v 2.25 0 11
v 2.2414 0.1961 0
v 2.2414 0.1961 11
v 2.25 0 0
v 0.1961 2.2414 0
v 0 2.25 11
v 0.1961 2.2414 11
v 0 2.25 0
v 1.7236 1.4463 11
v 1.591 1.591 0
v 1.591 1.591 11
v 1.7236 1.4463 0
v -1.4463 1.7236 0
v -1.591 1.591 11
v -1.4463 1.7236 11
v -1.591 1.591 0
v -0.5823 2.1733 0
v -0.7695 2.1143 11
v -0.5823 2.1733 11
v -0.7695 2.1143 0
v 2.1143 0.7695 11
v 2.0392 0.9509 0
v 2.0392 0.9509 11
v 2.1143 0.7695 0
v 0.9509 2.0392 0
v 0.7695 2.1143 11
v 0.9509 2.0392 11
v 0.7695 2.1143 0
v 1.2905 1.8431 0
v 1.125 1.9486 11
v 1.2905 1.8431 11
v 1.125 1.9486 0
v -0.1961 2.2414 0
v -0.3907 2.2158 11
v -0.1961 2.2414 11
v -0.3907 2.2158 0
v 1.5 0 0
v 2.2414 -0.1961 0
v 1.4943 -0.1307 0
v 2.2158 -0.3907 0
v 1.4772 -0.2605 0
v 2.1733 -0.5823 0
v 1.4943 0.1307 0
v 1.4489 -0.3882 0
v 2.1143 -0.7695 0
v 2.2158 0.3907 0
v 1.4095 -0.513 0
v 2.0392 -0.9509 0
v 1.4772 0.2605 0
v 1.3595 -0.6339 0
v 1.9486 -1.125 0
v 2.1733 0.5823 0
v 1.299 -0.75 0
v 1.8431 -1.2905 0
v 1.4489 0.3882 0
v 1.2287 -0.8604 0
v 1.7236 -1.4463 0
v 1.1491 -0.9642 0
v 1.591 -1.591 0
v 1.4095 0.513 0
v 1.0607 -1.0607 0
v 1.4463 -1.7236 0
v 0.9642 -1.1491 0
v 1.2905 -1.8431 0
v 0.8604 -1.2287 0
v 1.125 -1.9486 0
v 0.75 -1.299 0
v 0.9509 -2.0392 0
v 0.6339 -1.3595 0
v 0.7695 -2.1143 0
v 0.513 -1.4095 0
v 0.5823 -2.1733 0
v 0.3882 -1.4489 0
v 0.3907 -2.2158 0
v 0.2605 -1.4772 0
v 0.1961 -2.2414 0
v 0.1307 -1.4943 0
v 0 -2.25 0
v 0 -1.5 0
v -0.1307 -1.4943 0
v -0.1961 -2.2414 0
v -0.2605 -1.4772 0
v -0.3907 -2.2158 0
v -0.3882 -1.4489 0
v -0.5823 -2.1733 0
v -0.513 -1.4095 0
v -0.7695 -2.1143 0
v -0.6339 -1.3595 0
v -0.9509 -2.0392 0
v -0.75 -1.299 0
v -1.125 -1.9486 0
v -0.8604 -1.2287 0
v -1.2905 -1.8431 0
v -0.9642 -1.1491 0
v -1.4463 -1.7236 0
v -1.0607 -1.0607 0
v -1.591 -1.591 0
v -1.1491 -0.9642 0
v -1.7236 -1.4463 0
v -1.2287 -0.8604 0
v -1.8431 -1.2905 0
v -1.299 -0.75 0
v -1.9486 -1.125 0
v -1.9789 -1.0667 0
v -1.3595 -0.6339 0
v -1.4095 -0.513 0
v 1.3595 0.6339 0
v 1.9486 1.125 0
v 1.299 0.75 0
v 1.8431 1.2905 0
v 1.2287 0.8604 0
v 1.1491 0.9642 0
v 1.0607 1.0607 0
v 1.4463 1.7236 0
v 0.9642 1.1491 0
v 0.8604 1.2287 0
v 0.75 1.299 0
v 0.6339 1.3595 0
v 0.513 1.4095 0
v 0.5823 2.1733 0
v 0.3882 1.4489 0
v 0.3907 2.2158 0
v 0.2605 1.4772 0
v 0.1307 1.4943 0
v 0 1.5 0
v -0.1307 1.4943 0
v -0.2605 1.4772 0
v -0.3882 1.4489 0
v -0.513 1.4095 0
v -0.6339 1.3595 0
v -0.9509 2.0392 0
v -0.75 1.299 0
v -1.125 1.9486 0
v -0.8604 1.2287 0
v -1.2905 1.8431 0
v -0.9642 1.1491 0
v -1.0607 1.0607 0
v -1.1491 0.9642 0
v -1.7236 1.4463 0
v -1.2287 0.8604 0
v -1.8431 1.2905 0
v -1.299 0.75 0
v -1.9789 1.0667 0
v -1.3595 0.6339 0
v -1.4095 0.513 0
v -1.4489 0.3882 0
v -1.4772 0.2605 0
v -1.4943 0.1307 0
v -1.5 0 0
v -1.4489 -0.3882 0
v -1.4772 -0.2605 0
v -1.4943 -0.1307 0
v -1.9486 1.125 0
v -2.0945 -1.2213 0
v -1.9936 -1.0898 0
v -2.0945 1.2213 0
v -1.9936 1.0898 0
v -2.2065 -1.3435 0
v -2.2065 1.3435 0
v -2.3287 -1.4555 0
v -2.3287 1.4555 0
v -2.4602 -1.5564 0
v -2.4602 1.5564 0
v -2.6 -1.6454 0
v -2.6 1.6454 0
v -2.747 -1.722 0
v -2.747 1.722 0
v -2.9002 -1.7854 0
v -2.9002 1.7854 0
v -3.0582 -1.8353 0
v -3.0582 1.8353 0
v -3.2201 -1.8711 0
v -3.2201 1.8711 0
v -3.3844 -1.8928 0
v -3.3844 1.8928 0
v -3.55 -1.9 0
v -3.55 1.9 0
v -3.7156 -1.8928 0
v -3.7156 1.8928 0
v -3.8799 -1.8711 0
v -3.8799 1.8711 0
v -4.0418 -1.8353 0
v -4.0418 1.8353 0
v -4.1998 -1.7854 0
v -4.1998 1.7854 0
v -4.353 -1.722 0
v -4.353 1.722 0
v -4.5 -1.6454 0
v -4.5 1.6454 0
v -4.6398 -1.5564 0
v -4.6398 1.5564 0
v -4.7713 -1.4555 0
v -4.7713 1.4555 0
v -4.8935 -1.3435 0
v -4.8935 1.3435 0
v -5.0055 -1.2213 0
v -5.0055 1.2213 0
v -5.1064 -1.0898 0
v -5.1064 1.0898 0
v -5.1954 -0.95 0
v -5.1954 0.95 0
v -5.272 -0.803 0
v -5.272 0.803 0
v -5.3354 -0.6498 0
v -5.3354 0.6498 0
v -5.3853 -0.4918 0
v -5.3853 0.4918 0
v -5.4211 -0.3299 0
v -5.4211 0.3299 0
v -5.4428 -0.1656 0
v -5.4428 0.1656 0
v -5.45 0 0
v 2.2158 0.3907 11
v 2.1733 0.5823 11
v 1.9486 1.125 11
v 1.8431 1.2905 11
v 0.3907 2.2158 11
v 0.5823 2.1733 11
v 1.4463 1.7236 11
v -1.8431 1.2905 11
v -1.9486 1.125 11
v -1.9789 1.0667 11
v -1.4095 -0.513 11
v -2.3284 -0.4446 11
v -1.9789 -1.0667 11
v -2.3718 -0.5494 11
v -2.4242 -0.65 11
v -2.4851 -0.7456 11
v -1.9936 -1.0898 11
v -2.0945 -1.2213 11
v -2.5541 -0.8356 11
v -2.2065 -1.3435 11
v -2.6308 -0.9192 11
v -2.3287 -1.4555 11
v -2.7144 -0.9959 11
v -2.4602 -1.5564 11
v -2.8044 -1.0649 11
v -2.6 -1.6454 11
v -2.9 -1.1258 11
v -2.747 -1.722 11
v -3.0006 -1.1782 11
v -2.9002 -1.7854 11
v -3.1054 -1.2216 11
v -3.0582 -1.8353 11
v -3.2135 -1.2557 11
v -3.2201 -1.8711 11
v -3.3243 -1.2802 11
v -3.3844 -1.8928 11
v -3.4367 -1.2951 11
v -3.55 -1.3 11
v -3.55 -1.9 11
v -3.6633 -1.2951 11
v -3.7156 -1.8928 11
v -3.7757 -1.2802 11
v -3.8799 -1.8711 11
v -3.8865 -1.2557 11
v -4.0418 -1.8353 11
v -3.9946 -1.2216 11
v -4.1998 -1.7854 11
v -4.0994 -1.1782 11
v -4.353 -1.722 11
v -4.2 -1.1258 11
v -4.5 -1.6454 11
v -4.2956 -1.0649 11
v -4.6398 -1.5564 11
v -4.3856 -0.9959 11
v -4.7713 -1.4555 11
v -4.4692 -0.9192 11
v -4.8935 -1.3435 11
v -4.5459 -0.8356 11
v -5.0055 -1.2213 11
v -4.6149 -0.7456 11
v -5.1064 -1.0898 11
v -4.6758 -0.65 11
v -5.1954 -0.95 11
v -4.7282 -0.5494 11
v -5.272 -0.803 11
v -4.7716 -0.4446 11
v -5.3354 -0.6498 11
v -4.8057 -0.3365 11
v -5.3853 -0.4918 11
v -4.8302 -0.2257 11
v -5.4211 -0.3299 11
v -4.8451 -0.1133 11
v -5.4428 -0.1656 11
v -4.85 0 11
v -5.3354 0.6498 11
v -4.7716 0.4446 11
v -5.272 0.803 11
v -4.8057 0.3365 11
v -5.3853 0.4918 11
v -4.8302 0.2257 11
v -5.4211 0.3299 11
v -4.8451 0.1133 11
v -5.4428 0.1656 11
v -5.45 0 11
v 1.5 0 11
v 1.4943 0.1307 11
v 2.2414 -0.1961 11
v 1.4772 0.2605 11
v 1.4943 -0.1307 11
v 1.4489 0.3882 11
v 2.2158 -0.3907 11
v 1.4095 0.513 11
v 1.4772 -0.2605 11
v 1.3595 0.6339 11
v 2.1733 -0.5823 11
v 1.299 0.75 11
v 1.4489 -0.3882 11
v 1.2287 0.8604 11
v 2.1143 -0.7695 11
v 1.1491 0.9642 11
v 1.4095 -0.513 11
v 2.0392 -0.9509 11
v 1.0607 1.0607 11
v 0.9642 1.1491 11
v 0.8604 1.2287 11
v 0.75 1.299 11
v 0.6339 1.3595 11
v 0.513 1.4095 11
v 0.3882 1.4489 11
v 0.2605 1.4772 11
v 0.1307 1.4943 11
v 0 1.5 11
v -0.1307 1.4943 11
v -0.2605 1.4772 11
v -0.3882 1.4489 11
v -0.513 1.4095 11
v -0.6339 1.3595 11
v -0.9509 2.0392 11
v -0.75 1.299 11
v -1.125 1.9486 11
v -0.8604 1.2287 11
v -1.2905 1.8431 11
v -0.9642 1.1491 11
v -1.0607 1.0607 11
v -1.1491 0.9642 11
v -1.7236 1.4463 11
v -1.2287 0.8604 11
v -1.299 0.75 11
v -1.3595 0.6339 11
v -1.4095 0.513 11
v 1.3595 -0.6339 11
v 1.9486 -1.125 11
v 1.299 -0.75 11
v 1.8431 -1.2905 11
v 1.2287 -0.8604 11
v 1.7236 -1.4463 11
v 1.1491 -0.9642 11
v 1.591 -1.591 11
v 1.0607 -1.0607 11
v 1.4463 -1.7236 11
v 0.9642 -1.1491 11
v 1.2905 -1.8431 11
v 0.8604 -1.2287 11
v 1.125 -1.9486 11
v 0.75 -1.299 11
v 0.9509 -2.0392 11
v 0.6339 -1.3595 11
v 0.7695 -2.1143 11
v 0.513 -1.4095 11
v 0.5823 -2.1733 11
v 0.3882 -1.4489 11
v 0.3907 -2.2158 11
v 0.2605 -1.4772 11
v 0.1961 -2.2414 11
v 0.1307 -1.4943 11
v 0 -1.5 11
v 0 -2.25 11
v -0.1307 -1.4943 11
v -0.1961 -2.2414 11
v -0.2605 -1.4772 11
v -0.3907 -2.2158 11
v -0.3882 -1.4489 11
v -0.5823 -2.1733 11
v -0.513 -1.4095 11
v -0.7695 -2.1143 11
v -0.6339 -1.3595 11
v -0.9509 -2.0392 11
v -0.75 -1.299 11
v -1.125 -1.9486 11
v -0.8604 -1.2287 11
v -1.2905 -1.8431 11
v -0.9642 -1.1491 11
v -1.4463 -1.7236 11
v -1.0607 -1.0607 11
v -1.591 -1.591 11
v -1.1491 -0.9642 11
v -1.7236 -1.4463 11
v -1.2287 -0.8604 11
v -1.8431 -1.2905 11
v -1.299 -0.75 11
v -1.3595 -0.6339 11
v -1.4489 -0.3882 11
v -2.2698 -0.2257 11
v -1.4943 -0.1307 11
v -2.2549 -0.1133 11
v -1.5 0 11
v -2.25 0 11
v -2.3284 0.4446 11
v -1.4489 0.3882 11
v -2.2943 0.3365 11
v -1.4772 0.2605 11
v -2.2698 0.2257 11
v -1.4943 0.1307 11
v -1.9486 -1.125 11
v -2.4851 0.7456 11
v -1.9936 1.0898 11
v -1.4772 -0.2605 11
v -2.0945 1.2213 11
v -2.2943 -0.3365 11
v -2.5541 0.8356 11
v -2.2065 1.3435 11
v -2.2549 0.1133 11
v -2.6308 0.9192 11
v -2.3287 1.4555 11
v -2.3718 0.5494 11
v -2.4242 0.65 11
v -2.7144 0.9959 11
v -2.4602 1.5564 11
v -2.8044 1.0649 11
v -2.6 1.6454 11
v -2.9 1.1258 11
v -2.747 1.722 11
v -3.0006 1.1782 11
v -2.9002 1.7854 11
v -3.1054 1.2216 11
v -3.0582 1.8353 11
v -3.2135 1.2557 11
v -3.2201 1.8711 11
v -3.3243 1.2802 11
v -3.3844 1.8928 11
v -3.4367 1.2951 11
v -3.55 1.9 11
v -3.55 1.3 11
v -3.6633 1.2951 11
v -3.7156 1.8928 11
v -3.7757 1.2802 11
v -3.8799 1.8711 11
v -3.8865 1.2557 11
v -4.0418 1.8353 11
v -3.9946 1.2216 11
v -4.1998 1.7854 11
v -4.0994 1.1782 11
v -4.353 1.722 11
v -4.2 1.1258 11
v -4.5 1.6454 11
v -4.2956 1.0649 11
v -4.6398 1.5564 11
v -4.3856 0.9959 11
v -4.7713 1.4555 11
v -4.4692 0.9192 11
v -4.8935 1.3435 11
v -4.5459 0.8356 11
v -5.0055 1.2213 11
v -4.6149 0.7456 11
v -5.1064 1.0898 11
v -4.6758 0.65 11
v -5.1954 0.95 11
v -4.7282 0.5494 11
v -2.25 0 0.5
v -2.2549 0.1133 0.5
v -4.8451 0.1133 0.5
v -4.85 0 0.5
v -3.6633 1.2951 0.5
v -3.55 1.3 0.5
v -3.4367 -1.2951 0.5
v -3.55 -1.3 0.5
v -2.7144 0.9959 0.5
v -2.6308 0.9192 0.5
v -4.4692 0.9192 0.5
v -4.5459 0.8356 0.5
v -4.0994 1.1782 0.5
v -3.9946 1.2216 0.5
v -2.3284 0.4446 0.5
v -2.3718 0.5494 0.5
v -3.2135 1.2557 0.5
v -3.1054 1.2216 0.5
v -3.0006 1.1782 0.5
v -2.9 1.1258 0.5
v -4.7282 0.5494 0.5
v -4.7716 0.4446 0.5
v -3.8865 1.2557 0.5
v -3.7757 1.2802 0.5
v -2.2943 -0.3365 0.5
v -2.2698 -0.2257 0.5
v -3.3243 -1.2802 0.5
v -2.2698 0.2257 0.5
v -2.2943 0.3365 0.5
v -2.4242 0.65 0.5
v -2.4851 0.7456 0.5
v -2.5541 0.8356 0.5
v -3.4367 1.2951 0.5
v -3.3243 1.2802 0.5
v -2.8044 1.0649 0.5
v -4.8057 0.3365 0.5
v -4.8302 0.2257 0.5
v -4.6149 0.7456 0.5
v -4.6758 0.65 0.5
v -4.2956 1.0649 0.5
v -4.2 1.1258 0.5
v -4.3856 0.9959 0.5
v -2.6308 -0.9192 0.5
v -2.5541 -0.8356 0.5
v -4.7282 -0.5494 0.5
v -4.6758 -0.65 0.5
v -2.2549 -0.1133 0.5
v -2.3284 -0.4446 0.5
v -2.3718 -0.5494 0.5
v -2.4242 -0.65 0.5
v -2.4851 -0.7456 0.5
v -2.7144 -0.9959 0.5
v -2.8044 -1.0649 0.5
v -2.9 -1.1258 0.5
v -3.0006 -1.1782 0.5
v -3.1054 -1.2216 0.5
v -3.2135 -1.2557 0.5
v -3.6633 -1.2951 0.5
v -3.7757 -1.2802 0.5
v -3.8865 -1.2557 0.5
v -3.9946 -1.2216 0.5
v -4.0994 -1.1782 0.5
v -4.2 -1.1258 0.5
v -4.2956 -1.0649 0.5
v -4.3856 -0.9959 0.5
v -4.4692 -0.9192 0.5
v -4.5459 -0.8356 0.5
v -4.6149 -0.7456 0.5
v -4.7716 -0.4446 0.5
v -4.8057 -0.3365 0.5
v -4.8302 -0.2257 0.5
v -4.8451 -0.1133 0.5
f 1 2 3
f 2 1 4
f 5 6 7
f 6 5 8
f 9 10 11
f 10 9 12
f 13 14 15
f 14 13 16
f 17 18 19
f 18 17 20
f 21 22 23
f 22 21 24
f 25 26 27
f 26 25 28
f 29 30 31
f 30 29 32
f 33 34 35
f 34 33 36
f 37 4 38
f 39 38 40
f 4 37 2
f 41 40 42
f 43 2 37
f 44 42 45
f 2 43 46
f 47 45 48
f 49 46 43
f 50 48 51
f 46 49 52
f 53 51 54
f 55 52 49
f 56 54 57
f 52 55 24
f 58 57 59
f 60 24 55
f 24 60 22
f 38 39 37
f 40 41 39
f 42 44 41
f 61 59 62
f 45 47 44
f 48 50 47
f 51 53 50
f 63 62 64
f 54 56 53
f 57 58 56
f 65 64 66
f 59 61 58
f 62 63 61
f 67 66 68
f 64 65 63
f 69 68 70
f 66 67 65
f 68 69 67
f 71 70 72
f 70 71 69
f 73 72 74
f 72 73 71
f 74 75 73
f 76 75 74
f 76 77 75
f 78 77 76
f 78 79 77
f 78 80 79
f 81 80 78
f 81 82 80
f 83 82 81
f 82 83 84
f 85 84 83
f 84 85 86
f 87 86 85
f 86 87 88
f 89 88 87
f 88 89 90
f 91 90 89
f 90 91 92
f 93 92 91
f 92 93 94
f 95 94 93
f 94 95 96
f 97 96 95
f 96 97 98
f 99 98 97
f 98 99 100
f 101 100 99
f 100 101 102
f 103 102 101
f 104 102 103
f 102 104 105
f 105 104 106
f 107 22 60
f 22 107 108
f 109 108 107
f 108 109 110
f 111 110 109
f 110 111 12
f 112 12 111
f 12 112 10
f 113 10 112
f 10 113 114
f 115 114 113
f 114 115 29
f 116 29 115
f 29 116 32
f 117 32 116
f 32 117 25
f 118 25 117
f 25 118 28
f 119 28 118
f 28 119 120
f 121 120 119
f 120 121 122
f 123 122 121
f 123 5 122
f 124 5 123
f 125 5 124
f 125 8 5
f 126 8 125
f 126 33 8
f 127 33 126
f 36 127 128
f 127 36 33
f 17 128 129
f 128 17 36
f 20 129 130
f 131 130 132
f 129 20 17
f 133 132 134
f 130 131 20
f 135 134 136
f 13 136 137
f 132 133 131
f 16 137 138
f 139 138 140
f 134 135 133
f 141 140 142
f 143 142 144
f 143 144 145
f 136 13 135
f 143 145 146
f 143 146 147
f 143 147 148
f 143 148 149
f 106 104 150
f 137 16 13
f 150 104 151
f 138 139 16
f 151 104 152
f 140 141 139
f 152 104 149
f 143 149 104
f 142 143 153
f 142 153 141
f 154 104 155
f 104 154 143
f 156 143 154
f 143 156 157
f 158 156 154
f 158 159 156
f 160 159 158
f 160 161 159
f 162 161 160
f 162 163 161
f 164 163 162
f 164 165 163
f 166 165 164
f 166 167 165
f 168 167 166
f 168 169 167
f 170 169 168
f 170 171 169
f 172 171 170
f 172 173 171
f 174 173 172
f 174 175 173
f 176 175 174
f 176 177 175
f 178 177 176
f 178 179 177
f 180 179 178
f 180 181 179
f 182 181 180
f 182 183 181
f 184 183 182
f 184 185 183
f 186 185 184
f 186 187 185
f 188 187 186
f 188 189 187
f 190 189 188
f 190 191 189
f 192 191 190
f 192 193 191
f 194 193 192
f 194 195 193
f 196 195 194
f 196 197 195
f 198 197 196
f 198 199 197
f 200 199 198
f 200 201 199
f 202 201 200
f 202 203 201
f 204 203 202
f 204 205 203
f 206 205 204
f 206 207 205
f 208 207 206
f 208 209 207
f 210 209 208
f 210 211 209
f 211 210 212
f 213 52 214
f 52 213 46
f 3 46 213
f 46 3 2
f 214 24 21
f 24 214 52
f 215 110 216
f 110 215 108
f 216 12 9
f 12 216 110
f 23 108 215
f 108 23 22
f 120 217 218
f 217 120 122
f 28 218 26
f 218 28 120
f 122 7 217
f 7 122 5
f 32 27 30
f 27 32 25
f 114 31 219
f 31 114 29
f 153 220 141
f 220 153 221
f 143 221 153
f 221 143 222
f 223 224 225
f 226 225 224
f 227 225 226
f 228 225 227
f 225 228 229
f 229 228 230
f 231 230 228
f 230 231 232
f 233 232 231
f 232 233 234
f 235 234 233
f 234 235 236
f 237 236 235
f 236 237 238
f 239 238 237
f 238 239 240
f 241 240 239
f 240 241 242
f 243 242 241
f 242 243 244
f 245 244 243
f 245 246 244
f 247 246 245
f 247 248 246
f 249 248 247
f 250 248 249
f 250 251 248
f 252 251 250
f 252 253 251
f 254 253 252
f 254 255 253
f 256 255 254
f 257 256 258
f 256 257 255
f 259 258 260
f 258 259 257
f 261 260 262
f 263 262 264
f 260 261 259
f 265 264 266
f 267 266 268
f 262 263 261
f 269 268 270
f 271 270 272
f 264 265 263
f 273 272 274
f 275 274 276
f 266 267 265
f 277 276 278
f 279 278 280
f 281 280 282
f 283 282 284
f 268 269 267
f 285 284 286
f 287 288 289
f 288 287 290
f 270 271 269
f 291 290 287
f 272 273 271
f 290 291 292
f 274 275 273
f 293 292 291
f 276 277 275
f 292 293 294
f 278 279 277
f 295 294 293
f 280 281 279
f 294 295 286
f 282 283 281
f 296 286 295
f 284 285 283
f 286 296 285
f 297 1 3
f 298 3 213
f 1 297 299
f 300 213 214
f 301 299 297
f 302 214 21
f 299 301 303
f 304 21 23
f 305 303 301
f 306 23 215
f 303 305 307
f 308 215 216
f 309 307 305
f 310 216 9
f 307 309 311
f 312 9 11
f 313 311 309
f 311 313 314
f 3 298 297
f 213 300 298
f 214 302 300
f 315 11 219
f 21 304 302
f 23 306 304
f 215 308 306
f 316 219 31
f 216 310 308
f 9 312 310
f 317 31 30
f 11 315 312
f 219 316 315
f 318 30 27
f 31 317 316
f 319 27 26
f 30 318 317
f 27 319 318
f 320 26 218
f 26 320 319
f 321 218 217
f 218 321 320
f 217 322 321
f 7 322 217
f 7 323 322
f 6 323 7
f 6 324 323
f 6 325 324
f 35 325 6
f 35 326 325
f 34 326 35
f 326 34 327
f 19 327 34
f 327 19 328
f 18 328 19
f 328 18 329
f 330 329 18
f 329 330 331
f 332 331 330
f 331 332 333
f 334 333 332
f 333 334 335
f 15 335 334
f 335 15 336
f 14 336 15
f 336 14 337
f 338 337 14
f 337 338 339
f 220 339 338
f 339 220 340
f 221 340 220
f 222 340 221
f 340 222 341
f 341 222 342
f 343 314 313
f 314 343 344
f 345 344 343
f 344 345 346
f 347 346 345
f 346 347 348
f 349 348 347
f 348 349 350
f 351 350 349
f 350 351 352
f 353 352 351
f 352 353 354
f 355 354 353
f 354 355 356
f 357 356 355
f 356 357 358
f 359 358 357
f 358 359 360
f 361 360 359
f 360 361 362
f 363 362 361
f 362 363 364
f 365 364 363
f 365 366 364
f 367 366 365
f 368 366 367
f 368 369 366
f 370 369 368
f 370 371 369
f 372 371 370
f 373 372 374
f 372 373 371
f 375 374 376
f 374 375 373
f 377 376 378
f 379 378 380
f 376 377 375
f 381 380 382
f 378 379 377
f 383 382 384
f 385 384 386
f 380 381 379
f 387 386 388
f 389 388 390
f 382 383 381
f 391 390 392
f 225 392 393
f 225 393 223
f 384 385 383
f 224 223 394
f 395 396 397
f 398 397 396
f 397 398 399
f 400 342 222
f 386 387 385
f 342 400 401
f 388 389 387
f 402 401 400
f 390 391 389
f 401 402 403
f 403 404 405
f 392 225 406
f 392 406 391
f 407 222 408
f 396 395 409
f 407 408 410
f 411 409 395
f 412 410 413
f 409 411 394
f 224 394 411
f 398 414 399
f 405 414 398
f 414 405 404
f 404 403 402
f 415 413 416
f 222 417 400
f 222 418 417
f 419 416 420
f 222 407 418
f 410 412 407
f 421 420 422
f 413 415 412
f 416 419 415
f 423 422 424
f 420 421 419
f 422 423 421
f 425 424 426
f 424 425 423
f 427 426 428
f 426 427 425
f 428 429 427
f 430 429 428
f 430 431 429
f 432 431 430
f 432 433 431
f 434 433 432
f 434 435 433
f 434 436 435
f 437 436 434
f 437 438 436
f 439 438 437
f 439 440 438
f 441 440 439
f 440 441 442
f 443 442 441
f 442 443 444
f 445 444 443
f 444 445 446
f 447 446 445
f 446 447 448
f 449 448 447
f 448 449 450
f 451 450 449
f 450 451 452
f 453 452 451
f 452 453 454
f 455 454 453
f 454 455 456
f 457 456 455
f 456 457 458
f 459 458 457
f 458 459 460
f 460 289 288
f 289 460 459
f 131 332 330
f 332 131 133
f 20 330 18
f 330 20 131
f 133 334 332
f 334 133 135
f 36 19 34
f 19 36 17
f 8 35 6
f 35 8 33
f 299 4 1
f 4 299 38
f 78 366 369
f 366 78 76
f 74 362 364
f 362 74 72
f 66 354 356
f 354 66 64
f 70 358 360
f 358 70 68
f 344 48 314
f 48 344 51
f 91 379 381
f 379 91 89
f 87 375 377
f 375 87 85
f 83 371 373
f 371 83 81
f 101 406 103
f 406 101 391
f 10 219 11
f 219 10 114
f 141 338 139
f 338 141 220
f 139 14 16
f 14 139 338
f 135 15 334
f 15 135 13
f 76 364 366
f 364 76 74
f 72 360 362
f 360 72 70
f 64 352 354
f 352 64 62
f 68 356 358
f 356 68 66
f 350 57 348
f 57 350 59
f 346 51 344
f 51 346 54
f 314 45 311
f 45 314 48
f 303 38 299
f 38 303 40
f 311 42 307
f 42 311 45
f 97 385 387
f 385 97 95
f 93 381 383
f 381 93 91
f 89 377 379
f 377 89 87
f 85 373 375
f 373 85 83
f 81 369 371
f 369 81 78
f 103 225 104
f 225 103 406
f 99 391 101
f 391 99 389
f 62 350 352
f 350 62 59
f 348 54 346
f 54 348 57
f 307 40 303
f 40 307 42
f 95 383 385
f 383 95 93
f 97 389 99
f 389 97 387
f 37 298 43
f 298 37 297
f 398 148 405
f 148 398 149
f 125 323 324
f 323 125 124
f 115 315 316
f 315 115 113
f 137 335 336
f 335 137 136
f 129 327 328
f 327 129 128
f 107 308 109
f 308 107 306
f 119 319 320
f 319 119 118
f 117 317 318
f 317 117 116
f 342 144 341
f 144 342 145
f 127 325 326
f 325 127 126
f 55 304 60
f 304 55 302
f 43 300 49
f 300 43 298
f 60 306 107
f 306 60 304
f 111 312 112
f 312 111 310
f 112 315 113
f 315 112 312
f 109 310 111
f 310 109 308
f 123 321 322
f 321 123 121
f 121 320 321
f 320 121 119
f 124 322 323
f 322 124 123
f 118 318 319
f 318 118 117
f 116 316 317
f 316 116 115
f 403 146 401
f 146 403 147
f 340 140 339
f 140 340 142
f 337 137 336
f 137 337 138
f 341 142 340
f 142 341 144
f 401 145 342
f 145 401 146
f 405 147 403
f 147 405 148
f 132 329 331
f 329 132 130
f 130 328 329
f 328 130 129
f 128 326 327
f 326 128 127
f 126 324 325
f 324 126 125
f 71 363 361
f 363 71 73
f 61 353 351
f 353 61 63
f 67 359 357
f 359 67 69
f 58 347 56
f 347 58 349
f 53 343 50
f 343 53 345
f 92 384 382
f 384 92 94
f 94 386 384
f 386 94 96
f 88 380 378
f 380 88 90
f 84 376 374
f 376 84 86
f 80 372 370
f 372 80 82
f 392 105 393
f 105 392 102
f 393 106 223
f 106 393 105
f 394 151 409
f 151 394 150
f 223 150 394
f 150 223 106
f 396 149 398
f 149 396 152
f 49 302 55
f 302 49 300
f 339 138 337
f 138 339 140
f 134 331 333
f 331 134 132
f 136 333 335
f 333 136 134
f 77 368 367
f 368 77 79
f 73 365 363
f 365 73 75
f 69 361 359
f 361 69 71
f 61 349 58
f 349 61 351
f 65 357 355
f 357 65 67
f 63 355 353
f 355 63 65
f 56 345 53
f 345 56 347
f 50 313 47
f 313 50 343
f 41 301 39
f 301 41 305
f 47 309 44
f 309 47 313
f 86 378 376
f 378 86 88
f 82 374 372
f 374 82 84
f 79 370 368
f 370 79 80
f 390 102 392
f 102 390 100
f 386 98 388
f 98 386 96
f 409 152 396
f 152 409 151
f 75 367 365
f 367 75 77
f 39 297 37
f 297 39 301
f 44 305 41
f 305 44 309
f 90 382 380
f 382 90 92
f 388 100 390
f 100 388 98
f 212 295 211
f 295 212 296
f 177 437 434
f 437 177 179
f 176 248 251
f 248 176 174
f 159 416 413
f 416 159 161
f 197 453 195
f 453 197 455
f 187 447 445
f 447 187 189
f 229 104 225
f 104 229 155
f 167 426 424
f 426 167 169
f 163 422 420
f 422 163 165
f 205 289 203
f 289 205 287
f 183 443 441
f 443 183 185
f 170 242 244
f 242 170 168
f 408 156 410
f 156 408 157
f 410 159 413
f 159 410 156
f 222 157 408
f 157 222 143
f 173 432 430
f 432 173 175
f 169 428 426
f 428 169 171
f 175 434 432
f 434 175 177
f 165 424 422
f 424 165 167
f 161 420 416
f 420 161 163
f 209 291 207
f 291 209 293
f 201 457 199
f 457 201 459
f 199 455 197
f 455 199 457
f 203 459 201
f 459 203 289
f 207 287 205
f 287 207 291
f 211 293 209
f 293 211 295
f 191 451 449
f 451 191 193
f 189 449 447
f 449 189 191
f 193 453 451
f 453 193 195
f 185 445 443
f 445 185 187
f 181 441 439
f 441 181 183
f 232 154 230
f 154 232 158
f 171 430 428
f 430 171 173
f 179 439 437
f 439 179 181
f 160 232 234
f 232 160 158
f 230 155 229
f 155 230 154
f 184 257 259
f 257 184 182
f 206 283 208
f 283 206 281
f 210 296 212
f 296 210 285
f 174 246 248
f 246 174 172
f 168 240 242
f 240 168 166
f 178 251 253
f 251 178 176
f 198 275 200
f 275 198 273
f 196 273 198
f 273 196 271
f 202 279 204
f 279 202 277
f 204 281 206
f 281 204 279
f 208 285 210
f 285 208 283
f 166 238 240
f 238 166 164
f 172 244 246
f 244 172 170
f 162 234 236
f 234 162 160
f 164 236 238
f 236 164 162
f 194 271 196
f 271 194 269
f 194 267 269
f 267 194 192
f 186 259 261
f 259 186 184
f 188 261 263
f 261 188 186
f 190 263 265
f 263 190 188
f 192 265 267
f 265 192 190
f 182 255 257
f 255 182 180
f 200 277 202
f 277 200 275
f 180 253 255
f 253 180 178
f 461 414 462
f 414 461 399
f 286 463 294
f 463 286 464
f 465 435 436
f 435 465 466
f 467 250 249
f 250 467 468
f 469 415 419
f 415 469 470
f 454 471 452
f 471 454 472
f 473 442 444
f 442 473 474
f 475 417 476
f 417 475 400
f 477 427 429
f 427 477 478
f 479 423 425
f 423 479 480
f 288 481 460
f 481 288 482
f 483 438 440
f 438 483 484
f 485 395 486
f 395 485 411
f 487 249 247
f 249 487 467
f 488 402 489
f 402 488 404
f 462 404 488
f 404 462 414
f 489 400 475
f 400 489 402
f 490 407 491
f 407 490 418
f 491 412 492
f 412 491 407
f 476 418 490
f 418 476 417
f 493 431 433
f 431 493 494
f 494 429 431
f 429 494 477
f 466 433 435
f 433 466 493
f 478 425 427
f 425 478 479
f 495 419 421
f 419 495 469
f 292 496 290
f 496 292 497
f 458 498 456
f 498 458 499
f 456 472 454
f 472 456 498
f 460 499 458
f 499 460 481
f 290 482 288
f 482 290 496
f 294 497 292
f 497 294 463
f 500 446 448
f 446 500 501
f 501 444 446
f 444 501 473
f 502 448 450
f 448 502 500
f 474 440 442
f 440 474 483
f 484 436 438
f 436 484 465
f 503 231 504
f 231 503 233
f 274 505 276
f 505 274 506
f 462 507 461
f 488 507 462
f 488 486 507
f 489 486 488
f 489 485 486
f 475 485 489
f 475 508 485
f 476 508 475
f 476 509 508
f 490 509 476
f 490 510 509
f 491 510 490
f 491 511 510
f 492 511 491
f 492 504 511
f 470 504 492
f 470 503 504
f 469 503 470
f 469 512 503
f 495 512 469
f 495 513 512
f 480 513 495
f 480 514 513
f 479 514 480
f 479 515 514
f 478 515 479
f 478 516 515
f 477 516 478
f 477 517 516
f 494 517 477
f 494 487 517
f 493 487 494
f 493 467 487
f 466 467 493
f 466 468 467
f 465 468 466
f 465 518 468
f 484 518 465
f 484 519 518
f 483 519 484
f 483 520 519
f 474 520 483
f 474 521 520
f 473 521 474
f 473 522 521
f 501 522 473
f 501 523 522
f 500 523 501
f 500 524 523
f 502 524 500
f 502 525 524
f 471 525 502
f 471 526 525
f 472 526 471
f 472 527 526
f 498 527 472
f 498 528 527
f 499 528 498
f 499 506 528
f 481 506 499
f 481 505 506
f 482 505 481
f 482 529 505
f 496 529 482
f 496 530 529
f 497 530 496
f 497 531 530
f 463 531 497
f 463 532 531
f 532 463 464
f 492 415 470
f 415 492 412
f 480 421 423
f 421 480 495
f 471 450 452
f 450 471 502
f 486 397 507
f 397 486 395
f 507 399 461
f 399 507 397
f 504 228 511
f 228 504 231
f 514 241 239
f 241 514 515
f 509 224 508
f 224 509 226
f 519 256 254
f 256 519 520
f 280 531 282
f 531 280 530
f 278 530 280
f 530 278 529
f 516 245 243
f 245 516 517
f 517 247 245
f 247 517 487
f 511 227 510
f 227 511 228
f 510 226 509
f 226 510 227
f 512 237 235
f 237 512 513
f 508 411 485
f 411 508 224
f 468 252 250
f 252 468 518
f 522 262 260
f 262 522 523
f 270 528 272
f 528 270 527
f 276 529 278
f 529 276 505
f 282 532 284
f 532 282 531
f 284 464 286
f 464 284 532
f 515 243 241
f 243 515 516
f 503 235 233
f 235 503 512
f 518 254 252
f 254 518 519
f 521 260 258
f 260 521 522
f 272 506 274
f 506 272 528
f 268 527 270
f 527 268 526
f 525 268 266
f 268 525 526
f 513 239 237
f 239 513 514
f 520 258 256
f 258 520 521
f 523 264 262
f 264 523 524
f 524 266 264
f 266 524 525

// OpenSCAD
// Dave Fifield, Apr, 2022
// dave.fifield@ec.gc.ca

// Module to produce PIT tag holder
//
// OR = leg hole outside radius
// IR = leg hole inside radius
// height = height of band
// PIR = PIT hole inner radius
// POR = PIT hole outer radius
// PCO = center of PIT hole on x-axis
// do_slit = should slit be inserted in band. Slits often don't print
//   well so it's probably better to just cut them with a scalpel.
// slit_width = width of the slit
module do_band(OR, IR, height, PIR, POR, PCO, do_slit, slit_width) {
  band_thickness = OR - IR;
  union(){
    // first do leg band
    difference() {
      // outer cylinder
      color("Red") 
        cylinder(h=height, r=OR, center = false, $fn=72);
          
      // inner empty space
      color("Blue") 
        cylinder(h=height, r=IR, center = false, $fn=72);    
      
      // Do we want a slit in the band?
      if (do_slit) {
        translate([IR - (0.25 * band_thickness), -0.5 * slit_width, 0.2])
          cube([1.5 * band_thickness, slit_width, 1.2 * height]);
      }
    }
    
    // now do pit tag holder
    translate([PCO,0,0]) {
      difference() {
        // outer cylinder
        color("Green")
          cylinder(h=height, r=POR, center=false, $fn = 72);

        // innder cylinder

        color("Blue")
        // try closing top end of pit tag cylinder
          translate([0,0,0.5])
            cylinder(h=height, r=PIR, center=false, $fn = 72);
      }
    }
  }
}

// Example  dimensions for Leach's Storm-Petrel using 10mm x 2.12mm 
// glass PIT tag.

// All units are in mm
band_height = 11; // Length of band along the leg
IR = 1.5;  // Bird leg hole radius
thickness = 0.75; // Bird leg hole wall thickness
OR = IR + thickness; // Bird leg hole outer radius

PIR = 1.3;            // PIT tag holder inside radius
P_thick = 0.6;        // Thickness of pit tag hole walls
POR = PIR + P_thick;  // pit tag holder outer radius
PCO = -1 * (OR + PIR); // offset from 0 on x-axis to center of pit tag holder
do_slit = false;
slit_width = 0;

do_band(OR = OR, IR = IR, height = band_height, PIR = PIR, POR = POR, PCO = PCO, slit_width = slit_width, do_slit = do_slit);
